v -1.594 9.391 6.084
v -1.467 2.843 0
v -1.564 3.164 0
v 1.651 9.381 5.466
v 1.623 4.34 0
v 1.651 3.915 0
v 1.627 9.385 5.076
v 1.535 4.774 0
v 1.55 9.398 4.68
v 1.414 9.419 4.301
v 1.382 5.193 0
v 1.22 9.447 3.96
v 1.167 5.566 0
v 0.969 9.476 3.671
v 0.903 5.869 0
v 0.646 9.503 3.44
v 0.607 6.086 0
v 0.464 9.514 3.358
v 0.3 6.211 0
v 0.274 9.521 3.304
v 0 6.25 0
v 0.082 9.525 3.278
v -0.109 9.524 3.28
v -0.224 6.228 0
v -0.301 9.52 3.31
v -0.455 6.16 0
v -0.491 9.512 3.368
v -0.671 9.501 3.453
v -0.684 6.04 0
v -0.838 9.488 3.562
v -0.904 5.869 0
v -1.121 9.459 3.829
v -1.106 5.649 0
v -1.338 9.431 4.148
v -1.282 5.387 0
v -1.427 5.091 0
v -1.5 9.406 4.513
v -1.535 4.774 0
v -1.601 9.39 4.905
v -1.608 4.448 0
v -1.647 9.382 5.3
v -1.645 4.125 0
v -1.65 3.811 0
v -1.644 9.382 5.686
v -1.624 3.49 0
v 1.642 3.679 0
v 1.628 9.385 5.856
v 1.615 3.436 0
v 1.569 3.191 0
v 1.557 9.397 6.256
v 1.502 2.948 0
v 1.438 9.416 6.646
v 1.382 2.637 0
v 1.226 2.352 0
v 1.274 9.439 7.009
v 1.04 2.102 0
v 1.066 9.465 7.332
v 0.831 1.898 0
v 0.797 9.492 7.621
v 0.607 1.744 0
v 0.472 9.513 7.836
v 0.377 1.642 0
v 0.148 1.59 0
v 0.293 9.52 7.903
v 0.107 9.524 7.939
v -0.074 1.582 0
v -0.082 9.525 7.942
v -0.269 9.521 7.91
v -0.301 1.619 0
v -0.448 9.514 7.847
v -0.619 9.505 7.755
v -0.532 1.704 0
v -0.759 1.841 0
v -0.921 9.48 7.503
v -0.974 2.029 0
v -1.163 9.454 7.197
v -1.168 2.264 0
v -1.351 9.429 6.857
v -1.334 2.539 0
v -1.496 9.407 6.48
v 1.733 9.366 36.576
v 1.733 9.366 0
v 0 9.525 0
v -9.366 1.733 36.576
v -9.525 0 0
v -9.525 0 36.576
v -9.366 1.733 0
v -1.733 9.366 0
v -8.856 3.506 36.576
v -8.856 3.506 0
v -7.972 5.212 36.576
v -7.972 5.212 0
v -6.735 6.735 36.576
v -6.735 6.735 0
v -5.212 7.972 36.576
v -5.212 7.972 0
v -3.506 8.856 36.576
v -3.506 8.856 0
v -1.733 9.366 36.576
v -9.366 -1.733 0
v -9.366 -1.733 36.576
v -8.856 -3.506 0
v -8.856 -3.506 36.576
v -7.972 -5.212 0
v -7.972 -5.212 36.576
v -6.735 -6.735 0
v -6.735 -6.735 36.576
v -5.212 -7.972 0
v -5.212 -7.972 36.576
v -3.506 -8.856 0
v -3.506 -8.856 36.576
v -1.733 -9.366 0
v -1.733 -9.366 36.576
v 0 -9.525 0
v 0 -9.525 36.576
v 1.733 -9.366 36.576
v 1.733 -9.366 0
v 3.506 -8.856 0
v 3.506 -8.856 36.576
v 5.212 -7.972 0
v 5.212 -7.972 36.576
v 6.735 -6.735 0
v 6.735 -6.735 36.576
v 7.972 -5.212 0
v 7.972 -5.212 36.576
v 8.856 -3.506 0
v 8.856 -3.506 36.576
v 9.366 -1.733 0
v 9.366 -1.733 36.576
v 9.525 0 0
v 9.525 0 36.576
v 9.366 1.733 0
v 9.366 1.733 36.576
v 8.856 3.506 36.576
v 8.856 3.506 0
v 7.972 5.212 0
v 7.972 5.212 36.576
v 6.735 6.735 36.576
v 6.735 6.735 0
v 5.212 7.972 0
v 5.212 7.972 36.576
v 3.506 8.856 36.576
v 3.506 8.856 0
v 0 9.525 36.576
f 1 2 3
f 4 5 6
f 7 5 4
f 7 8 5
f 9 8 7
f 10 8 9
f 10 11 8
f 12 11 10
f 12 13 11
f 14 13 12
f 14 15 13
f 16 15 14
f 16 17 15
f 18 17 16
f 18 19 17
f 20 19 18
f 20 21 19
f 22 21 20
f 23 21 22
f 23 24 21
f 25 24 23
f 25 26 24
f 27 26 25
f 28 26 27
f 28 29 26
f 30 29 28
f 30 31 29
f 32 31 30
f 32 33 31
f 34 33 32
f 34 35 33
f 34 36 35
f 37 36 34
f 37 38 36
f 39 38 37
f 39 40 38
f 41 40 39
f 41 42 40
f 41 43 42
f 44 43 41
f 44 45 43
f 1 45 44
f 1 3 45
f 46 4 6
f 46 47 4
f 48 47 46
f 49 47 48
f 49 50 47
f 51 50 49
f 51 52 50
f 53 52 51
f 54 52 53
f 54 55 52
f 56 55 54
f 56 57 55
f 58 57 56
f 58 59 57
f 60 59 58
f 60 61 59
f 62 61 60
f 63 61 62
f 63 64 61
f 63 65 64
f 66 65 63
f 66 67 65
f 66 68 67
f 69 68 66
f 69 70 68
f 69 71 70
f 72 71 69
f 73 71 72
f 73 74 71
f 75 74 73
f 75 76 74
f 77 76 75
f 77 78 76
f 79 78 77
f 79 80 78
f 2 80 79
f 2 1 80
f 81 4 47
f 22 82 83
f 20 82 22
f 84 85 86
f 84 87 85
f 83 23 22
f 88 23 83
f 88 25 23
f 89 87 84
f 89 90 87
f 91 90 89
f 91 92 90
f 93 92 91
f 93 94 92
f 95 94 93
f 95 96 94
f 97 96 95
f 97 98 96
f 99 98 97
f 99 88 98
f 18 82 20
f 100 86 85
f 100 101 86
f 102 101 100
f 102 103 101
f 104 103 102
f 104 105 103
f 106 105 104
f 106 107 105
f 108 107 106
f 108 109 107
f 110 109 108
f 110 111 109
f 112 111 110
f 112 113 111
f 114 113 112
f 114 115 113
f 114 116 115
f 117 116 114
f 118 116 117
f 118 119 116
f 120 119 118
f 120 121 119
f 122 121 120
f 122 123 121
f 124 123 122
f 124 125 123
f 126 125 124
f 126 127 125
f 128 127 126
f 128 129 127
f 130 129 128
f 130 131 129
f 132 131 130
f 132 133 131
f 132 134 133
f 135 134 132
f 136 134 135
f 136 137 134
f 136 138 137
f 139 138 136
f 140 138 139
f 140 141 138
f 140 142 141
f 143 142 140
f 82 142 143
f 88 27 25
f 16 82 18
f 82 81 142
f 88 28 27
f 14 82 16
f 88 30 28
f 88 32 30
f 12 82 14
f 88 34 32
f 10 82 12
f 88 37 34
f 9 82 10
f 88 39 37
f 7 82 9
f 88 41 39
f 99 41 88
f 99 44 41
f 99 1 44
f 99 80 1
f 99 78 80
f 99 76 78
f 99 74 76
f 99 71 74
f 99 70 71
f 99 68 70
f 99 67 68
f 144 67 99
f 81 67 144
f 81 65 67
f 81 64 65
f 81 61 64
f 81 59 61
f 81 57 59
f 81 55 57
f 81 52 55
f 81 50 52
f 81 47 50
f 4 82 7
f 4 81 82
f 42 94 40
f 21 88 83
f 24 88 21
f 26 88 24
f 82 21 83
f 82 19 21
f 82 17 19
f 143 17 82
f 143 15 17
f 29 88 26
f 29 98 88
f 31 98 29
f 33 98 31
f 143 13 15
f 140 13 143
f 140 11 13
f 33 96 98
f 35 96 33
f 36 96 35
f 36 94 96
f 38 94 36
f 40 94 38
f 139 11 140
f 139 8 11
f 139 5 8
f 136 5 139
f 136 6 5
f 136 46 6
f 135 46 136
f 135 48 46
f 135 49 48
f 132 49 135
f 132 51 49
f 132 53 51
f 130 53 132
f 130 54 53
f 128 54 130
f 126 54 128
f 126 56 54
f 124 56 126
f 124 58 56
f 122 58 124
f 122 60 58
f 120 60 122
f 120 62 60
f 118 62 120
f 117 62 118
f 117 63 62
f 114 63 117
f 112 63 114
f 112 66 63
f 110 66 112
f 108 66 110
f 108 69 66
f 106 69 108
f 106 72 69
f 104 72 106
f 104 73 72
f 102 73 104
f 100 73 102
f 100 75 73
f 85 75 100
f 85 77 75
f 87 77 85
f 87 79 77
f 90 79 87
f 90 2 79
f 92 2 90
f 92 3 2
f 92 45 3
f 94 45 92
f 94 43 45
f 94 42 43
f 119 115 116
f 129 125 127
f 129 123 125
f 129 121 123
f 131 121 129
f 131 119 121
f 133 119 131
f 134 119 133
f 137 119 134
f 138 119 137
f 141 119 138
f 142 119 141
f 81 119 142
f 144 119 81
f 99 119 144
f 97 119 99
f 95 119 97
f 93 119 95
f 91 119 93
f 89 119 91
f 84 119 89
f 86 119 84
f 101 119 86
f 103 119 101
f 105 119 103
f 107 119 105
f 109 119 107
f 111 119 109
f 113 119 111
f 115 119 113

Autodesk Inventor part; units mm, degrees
ref_plane "YZ Plane" through (0, 0, 0) normal (1, 0, 0) x (0, 1, 0)
ref_plane "XY Plane" through (0, 0, 0) normal (0, 0, 1) x (1, 0, 0)
sketch "Sketch1" plane through (0, 0, 0) normal (0, 0, 1) x (1, 0, 0)
  circle A0 centre (0, 0) radius 9.525
  dimension "d0" = 19.05
extrude "Extrusion1" add sketch "Sketch1" along normal blind 36.576
ref_plane "Work Plane2" through (0, 15.875, 0) normal (0, 1, 0) x (-1, 0, 0)
sketch "Sketch4" plane through (0, 15.875, 0) normal (0, 1, 0) x (-1, 0, 0)
  circle A0 centre (0, 7.62) radius 1.4605
  point P0 (0, 0)
  dimension "d6" = 2.921
  dimension "d7" = 7.62
sketch "Sketch5" plane through (0, 0, 0) normal (0, 0, -1) x (-1, 0, 0)
  circle A0 centre (0, 0) radius 9.525 projected
  circle A1 centre (0, 1.905) radius 1.4605
  line L0 (0, 9.525) -> (14.2875, 9.525)
  dimension "d8" = 2.921
  dimension "d9" = 7.62
ref_plane "Work Plane3" through (0, 9.525, 0) normal (0, 0.7071, 0.7071) x (-1, 0, 0)
sketch "Sketch6" plane through (0, 9.525, 0) normal (0, 0.7071, 0.7071) x (-1, 0, 0)
  circle A0 centre (0, 3.9683) radius 1.5875
  point P0 (0, 6.7352)
  dimension "d11" = 3.175
extrude "Extrusion2" add sketch "Sketch6" along normal mid plane 25.4
sketch "Sketch7" plane through (0, -2.2613, -6.1742) normal (0, -0.7071, -0.7071) x (-1, 0, 0)
  circle A0 centre (0, 0) radius 1.5875 projected
  circle A1 centre (0, 0) radius 1.5875 projected
  point P0 (0, -2.7669)
hole "Hole1" at (-0.0004, -2.2603, -6.1752) direction (0, 0.7071, 0.7071) diameter 3.302 depth 25.4 tip angle 118
properties part number "Stainless Steel"
